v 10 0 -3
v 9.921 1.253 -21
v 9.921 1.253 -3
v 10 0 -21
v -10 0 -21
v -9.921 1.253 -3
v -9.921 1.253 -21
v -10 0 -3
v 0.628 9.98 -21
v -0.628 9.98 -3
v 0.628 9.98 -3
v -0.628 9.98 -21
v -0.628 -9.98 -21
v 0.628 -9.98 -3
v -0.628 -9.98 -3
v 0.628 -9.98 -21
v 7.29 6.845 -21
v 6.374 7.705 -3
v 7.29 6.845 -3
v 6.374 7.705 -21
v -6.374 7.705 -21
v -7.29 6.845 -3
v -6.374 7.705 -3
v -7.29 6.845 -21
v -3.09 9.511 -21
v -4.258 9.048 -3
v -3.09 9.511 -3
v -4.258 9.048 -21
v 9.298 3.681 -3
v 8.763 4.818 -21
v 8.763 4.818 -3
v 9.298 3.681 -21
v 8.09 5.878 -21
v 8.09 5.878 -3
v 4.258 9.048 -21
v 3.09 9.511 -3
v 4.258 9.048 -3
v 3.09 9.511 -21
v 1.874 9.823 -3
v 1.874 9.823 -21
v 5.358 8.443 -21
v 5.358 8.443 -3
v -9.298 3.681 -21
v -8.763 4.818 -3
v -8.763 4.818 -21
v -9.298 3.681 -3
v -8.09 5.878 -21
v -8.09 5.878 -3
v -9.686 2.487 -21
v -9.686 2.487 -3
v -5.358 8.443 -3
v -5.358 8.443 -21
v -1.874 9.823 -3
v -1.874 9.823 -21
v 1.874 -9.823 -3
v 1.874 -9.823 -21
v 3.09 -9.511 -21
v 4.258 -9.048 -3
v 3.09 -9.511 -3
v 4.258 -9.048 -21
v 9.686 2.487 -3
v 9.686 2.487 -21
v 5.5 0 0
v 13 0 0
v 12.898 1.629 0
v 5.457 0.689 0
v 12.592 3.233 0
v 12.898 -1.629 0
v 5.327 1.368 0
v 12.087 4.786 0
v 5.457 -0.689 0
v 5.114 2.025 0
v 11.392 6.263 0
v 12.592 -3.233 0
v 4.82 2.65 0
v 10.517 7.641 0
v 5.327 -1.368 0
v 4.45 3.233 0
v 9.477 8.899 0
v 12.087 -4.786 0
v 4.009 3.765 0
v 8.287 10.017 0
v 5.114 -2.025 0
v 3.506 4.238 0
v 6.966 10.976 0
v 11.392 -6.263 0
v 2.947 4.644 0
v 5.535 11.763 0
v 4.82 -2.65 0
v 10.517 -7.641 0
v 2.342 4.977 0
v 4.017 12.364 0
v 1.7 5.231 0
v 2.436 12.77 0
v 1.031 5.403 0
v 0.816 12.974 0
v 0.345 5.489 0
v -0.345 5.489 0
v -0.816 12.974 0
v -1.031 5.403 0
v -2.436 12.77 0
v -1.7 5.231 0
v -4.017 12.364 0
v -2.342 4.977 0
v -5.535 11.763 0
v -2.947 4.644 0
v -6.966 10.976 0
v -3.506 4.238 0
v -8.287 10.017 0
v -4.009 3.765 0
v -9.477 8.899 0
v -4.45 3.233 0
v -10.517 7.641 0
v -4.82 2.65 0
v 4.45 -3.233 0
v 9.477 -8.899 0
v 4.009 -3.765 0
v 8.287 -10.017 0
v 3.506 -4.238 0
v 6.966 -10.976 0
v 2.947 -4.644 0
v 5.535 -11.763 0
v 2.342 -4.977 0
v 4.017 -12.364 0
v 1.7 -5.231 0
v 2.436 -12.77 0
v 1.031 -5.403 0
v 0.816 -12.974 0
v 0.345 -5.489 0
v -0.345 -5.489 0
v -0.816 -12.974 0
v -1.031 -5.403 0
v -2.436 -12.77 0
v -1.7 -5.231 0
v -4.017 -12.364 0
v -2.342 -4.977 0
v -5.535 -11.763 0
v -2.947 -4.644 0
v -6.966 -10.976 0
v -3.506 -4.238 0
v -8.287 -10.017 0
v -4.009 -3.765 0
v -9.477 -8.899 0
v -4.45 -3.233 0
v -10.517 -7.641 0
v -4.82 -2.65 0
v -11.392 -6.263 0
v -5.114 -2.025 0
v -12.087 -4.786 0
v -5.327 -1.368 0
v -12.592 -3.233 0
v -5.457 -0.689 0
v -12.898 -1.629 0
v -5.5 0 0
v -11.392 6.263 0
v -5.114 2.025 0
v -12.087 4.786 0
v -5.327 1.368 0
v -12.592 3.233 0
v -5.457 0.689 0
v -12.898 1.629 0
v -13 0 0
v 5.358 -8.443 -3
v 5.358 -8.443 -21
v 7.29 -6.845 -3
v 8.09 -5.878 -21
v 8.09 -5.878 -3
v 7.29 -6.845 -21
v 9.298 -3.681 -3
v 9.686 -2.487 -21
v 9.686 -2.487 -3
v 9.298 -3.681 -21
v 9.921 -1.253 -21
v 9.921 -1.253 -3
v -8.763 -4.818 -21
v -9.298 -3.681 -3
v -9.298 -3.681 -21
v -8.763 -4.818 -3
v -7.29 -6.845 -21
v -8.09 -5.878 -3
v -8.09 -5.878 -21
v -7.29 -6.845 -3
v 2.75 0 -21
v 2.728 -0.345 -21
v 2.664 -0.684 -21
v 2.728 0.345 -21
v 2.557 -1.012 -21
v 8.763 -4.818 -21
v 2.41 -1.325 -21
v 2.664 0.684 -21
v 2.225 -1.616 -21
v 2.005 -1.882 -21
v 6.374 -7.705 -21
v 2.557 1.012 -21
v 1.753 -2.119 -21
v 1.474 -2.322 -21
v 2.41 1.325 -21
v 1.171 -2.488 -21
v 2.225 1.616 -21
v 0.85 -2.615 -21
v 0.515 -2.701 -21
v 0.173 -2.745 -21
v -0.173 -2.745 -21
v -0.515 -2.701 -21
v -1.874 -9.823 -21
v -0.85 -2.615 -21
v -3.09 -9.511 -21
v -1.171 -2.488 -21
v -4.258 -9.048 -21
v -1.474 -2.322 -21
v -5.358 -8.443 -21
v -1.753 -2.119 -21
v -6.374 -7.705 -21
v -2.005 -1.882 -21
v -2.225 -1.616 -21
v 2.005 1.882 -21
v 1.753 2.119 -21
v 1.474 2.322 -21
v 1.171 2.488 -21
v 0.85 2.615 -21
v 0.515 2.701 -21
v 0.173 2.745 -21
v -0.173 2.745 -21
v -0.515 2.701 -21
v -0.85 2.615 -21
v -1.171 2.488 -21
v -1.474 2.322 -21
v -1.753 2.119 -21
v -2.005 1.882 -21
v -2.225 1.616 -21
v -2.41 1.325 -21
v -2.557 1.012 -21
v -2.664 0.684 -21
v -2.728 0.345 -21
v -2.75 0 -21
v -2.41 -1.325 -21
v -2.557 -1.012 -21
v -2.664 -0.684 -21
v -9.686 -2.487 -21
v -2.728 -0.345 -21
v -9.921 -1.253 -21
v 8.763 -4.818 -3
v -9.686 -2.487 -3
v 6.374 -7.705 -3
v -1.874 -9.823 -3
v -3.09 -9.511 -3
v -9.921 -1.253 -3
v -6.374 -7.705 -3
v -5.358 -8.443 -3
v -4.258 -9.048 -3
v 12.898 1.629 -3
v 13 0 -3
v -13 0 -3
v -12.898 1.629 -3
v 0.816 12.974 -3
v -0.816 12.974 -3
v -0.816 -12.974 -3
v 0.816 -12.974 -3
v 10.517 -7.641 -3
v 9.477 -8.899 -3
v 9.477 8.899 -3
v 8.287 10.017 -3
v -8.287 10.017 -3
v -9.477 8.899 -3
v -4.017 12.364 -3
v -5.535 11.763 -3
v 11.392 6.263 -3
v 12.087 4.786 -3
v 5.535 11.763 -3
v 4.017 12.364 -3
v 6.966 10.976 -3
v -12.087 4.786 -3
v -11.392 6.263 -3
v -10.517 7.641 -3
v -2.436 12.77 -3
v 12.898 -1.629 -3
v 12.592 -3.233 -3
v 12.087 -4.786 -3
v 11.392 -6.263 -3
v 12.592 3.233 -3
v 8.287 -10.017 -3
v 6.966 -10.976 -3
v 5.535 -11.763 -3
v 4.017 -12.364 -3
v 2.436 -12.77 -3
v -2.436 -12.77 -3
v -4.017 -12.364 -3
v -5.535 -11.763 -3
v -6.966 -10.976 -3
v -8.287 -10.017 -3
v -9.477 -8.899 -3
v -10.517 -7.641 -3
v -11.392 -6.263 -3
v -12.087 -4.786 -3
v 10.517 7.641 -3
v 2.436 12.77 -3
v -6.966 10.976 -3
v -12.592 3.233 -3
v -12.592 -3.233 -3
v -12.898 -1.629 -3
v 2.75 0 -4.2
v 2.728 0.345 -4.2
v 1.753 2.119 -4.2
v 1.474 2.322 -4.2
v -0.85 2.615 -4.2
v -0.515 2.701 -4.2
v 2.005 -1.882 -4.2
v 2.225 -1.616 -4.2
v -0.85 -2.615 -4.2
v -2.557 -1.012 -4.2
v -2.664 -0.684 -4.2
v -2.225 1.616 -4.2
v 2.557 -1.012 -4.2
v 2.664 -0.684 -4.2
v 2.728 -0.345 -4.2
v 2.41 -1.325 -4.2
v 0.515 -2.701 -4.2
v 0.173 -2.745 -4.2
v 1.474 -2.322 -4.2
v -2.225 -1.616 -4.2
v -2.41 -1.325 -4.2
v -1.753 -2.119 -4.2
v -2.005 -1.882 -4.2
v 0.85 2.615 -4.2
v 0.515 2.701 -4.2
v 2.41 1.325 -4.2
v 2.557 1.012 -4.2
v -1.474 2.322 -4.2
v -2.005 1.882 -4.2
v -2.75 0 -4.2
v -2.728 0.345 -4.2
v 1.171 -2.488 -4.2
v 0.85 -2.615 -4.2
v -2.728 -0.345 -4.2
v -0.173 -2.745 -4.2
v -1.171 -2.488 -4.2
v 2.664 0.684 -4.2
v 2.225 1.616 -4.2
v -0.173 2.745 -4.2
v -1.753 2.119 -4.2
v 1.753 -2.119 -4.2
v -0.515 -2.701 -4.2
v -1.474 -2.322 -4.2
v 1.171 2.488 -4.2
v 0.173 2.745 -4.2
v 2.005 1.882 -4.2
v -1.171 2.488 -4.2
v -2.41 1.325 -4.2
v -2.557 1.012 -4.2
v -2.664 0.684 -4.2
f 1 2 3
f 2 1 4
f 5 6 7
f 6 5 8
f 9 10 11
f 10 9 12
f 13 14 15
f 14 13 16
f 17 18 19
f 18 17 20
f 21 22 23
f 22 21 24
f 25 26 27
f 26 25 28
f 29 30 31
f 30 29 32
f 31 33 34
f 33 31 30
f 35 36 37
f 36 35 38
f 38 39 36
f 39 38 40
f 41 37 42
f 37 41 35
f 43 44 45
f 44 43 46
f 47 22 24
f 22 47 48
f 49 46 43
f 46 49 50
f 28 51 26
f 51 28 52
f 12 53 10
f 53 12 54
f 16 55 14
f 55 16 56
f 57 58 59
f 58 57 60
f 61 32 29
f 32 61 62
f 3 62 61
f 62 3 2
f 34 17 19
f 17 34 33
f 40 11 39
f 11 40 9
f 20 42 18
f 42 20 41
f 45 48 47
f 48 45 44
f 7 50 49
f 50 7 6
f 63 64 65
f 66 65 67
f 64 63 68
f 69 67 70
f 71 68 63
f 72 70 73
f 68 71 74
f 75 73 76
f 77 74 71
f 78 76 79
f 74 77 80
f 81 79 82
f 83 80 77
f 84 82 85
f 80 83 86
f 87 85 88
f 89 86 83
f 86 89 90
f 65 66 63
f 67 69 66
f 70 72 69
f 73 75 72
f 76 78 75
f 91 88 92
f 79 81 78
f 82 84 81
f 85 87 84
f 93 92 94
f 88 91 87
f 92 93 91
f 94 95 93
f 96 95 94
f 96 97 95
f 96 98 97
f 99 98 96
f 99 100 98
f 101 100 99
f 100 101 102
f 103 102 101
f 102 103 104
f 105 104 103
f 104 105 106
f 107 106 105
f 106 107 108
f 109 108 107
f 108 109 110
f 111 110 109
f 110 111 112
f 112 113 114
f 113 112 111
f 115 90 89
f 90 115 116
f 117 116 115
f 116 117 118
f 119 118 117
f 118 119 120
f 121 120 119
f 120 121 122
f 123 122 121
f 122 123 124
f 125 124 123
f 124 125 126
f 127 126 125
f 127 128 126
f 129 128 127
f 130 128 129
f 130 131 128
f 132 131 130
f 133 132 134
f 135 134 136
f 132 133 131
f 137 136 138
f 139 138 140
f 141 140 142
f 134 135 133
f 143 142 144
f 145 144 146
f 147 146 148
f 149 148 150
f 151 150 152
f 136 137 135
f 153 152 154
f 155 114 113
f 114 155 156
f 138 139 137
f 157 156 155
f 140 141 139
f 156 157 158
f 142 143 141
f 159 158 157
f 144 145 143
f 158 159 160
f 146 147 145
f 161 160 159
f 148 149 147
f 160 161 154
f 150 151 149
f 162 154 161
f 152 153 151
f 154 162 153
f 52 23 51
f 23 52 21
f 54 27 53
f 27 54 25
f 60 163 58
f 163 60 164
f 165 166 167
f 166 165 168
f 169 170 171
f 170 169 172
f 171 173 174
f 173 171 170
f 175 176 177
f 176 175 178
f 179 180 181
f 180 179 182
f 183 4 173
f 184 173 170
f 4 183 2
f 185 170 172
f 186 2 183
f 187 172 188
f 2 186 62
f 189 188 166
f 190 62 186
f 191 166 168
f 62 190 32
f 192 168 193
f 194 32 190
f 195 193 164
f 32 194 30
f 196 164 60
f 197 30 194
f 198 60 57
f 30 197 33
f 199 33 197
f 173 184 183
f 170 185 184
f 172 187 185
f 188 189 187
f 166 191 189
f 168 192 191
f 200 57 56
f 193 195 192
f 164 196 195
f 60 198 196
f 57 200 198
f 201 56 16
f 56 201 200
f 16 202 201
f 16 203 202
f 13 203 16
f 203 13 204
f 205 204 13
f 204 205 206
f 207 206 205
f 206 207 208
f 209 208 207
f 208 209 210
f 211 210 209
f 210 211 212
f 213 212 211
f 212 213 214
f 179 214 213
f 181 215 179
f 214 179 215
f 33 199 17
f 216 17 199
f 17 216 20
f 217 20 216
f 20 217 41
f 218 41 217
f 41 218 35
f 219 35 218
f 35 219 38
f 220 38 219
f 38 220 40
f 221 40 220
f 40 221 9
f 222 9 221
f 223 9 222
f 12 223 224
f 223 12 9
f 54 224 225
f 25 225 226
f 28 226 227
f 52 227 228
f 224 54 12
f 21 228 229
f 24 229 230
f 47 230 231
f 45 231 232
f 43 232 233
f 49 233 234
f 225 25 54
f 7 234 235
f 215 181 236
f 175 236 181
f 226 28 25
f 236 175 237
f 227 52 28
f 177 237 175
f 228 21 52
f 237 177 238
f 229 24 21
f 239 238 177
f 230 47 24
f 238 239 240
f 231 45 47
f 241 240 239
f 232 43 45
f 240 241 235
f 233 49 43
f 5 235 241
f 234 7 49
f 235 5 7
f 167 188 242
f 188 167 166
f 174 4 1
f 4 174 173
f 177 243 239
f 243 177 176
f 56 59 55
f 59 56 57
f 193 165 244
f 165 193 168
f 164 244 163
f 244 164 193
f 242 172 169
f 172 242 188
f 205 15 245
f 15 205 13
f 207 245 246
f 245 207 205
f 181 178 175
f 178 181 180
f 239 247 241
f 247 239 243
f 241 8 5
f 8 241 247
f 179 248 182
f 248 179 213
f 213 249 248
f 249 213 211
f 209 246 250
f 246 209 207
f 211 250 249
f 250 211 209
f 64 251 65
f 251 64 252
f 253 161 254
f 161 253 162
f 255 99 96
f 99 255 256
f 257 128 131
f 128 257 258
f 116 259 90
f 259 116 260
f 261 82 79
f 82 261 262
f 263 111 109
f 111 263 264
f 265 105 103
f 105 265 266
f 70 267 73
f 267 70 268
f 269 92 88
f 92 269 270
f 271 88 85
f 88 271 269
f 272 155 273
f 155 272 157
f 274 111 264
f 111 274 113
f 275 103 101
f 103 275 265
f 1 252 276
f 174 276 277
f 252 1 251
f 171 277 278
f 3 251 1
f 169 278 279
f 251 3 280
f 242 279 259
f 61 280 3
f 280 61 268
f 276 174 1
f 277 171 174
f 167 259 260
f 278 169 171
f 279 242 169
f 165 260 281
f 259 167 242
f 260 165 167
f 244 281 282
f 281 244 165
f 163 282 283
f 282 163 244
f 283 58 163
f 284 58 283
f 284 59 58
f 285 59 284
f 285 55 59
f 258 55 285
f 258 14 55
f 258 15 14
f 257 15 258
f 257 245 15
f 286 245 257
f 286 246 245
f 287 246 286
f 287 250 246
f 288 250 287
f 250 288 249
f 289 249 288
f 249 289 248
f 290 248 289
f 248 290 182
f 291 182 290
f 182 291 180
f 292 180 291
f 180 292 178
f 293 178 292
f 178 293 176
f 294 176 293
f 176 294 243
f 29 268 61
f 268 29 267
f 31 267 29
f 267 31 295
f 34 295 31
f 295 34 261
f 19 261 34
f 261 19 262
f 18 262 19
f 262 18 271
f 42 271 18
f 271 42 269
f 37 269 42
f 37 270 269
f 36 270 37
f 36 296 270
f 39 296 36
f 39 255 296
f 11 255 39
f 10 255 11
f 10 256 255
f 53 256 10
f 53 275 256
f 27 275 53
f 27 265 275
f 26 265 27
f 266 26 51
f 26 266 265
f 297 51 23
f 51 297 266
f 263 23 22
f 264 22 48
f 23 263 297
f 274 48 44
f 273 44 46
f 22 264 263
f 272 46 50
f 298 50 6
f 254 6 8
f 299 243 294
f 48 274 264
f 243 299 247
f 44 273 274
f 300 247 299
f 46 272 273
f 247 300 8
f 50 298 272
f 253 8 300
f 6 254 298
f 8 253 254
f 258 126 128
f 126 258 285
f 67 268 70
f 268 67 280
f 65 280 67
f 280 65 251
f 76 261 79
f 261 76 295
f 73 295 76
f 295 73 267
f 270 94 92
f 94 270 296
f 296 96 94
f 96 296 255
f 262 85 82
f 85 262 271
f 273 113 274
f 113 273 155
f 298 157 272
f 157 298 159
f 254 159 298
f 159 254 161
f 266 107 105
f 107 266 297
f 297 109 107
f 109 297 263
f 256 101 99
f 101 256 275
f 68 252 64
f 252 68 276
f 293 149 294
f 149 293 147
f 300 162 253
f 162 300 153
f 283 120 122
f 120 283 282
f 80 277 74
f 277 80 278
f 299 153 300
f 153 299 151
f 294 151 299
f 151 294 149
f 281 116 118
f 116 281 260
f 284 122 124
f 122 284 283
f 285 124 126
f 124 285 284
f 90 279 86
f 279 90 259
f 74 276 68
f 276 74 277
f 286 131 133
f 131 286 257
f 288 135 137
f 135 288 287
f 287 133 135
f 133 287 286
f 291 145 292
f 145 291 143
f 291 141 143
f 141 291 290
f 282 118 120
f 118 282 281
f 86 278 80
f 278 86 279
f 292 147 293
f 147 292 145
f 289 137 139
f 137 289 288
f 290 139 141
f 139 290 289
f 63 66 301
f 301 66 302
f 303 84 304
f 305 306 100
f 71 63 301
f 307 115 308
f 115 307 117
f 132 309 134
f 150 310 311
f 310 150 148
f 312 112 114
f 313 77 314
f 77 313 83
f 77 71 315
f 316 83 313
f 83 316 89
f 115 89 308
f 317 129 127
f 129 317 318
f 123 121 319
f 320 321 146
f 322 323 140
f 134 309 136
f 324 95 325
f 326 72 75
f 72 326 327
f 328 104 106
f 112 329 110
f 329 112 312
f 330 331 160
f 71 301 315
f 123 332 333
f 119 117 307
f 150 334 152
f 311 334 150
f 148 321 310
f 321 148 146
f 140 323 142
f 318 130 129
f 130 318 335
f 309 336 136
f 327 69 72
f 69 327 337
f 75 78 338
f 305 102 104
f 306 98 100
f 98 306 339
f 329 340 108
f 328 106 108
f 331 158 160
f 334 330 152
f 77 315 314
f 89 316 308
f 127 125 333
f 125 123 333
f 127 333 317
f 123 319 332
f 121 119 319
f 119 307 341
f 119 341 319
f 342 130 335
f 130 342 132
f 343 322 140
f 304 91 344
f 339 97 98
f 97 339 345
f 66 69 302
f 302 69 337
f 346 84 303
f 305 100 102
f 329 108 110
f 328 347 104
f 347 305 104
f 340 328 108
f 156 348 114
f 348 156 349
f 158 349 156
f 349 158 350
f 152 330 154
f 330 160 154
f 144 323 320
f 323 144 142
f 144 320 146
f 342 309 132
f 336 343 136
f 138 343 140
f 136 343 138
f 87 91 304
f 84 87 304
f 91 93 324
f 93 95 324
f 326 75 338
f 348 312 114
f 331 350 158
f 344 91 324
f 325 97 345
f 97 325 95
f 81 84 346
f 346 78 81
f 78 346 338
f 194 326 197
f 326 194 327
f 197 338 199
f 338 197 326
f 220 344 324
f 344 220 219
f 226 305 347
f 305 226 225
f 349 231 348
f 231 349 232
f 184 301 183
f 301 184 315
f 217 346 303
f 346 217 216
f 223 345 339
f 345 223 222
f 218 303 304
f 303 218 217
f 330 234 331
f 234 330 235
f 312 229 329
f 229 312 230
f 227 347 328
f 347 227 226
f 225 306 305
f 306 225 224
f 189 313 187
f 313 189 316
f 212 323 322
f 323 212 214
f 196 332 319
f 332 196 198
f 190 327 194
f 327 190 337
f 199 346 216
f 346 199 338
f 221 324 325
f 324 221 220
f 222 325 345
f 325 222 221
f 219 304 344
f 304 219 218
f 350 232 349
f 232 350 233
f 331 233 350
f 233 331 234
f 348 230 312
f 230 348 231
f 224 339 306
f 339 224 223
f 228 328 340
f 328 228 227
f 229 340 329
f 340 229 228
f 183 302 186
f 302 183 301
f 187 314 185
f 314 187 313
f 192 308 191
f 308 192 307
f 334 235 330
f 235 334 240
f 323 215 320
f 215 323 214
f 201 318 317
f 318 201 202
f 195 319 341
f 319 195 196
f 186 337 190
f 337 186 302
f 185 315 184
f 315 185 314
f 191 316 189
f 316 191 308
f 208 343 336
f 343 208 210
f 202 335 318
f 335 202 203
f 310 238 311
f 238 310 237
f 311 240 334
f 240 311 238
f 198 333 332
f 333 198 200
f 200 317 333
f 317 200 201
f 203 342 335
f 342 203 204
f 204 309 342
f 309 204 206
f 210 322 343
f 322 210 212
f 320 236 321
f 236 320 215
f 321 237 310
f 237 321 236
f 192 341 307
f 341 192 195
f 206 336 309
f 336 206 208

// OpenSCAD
$fn = 50;


difference() {
	union() {
		translate(v = [0, 0, -21.0000000000]) {
			cylinder(h = 21, r = 10.0000000000);
		}
		translate(v = [0, 0, -3.0000000000]) {
			cylinder(h = 3, r = 13.0000000000);
		}
	}
	union() {
		translate(v = [0, 0, 0]) {
			rotate(a = [0, 0, 0]) {
				difference() {
					union() {
						#translate(v = [0, 0, -21.0000000000]) {
							cylinder(h = 21, r = 2.2500000000);
						}
						#translate(v = [0, 0, -4.2000000000]) {
							cylinder(h = 4.2000000000, r = 10.0000000000, r1 = 2.7500000000, r2 = 5.5000000000);
						}
						#translate(v = [0, 0, -21.0000000000]) {
							cylinder(h = 21, r = 2.7500000000);
						}
						#translate(v = [0, 0, -21.0000000000]) {
							cylinder(h = 21, r = 2.2500000000);
						}
					}
					union();
				}
			}
		}
	}
}
